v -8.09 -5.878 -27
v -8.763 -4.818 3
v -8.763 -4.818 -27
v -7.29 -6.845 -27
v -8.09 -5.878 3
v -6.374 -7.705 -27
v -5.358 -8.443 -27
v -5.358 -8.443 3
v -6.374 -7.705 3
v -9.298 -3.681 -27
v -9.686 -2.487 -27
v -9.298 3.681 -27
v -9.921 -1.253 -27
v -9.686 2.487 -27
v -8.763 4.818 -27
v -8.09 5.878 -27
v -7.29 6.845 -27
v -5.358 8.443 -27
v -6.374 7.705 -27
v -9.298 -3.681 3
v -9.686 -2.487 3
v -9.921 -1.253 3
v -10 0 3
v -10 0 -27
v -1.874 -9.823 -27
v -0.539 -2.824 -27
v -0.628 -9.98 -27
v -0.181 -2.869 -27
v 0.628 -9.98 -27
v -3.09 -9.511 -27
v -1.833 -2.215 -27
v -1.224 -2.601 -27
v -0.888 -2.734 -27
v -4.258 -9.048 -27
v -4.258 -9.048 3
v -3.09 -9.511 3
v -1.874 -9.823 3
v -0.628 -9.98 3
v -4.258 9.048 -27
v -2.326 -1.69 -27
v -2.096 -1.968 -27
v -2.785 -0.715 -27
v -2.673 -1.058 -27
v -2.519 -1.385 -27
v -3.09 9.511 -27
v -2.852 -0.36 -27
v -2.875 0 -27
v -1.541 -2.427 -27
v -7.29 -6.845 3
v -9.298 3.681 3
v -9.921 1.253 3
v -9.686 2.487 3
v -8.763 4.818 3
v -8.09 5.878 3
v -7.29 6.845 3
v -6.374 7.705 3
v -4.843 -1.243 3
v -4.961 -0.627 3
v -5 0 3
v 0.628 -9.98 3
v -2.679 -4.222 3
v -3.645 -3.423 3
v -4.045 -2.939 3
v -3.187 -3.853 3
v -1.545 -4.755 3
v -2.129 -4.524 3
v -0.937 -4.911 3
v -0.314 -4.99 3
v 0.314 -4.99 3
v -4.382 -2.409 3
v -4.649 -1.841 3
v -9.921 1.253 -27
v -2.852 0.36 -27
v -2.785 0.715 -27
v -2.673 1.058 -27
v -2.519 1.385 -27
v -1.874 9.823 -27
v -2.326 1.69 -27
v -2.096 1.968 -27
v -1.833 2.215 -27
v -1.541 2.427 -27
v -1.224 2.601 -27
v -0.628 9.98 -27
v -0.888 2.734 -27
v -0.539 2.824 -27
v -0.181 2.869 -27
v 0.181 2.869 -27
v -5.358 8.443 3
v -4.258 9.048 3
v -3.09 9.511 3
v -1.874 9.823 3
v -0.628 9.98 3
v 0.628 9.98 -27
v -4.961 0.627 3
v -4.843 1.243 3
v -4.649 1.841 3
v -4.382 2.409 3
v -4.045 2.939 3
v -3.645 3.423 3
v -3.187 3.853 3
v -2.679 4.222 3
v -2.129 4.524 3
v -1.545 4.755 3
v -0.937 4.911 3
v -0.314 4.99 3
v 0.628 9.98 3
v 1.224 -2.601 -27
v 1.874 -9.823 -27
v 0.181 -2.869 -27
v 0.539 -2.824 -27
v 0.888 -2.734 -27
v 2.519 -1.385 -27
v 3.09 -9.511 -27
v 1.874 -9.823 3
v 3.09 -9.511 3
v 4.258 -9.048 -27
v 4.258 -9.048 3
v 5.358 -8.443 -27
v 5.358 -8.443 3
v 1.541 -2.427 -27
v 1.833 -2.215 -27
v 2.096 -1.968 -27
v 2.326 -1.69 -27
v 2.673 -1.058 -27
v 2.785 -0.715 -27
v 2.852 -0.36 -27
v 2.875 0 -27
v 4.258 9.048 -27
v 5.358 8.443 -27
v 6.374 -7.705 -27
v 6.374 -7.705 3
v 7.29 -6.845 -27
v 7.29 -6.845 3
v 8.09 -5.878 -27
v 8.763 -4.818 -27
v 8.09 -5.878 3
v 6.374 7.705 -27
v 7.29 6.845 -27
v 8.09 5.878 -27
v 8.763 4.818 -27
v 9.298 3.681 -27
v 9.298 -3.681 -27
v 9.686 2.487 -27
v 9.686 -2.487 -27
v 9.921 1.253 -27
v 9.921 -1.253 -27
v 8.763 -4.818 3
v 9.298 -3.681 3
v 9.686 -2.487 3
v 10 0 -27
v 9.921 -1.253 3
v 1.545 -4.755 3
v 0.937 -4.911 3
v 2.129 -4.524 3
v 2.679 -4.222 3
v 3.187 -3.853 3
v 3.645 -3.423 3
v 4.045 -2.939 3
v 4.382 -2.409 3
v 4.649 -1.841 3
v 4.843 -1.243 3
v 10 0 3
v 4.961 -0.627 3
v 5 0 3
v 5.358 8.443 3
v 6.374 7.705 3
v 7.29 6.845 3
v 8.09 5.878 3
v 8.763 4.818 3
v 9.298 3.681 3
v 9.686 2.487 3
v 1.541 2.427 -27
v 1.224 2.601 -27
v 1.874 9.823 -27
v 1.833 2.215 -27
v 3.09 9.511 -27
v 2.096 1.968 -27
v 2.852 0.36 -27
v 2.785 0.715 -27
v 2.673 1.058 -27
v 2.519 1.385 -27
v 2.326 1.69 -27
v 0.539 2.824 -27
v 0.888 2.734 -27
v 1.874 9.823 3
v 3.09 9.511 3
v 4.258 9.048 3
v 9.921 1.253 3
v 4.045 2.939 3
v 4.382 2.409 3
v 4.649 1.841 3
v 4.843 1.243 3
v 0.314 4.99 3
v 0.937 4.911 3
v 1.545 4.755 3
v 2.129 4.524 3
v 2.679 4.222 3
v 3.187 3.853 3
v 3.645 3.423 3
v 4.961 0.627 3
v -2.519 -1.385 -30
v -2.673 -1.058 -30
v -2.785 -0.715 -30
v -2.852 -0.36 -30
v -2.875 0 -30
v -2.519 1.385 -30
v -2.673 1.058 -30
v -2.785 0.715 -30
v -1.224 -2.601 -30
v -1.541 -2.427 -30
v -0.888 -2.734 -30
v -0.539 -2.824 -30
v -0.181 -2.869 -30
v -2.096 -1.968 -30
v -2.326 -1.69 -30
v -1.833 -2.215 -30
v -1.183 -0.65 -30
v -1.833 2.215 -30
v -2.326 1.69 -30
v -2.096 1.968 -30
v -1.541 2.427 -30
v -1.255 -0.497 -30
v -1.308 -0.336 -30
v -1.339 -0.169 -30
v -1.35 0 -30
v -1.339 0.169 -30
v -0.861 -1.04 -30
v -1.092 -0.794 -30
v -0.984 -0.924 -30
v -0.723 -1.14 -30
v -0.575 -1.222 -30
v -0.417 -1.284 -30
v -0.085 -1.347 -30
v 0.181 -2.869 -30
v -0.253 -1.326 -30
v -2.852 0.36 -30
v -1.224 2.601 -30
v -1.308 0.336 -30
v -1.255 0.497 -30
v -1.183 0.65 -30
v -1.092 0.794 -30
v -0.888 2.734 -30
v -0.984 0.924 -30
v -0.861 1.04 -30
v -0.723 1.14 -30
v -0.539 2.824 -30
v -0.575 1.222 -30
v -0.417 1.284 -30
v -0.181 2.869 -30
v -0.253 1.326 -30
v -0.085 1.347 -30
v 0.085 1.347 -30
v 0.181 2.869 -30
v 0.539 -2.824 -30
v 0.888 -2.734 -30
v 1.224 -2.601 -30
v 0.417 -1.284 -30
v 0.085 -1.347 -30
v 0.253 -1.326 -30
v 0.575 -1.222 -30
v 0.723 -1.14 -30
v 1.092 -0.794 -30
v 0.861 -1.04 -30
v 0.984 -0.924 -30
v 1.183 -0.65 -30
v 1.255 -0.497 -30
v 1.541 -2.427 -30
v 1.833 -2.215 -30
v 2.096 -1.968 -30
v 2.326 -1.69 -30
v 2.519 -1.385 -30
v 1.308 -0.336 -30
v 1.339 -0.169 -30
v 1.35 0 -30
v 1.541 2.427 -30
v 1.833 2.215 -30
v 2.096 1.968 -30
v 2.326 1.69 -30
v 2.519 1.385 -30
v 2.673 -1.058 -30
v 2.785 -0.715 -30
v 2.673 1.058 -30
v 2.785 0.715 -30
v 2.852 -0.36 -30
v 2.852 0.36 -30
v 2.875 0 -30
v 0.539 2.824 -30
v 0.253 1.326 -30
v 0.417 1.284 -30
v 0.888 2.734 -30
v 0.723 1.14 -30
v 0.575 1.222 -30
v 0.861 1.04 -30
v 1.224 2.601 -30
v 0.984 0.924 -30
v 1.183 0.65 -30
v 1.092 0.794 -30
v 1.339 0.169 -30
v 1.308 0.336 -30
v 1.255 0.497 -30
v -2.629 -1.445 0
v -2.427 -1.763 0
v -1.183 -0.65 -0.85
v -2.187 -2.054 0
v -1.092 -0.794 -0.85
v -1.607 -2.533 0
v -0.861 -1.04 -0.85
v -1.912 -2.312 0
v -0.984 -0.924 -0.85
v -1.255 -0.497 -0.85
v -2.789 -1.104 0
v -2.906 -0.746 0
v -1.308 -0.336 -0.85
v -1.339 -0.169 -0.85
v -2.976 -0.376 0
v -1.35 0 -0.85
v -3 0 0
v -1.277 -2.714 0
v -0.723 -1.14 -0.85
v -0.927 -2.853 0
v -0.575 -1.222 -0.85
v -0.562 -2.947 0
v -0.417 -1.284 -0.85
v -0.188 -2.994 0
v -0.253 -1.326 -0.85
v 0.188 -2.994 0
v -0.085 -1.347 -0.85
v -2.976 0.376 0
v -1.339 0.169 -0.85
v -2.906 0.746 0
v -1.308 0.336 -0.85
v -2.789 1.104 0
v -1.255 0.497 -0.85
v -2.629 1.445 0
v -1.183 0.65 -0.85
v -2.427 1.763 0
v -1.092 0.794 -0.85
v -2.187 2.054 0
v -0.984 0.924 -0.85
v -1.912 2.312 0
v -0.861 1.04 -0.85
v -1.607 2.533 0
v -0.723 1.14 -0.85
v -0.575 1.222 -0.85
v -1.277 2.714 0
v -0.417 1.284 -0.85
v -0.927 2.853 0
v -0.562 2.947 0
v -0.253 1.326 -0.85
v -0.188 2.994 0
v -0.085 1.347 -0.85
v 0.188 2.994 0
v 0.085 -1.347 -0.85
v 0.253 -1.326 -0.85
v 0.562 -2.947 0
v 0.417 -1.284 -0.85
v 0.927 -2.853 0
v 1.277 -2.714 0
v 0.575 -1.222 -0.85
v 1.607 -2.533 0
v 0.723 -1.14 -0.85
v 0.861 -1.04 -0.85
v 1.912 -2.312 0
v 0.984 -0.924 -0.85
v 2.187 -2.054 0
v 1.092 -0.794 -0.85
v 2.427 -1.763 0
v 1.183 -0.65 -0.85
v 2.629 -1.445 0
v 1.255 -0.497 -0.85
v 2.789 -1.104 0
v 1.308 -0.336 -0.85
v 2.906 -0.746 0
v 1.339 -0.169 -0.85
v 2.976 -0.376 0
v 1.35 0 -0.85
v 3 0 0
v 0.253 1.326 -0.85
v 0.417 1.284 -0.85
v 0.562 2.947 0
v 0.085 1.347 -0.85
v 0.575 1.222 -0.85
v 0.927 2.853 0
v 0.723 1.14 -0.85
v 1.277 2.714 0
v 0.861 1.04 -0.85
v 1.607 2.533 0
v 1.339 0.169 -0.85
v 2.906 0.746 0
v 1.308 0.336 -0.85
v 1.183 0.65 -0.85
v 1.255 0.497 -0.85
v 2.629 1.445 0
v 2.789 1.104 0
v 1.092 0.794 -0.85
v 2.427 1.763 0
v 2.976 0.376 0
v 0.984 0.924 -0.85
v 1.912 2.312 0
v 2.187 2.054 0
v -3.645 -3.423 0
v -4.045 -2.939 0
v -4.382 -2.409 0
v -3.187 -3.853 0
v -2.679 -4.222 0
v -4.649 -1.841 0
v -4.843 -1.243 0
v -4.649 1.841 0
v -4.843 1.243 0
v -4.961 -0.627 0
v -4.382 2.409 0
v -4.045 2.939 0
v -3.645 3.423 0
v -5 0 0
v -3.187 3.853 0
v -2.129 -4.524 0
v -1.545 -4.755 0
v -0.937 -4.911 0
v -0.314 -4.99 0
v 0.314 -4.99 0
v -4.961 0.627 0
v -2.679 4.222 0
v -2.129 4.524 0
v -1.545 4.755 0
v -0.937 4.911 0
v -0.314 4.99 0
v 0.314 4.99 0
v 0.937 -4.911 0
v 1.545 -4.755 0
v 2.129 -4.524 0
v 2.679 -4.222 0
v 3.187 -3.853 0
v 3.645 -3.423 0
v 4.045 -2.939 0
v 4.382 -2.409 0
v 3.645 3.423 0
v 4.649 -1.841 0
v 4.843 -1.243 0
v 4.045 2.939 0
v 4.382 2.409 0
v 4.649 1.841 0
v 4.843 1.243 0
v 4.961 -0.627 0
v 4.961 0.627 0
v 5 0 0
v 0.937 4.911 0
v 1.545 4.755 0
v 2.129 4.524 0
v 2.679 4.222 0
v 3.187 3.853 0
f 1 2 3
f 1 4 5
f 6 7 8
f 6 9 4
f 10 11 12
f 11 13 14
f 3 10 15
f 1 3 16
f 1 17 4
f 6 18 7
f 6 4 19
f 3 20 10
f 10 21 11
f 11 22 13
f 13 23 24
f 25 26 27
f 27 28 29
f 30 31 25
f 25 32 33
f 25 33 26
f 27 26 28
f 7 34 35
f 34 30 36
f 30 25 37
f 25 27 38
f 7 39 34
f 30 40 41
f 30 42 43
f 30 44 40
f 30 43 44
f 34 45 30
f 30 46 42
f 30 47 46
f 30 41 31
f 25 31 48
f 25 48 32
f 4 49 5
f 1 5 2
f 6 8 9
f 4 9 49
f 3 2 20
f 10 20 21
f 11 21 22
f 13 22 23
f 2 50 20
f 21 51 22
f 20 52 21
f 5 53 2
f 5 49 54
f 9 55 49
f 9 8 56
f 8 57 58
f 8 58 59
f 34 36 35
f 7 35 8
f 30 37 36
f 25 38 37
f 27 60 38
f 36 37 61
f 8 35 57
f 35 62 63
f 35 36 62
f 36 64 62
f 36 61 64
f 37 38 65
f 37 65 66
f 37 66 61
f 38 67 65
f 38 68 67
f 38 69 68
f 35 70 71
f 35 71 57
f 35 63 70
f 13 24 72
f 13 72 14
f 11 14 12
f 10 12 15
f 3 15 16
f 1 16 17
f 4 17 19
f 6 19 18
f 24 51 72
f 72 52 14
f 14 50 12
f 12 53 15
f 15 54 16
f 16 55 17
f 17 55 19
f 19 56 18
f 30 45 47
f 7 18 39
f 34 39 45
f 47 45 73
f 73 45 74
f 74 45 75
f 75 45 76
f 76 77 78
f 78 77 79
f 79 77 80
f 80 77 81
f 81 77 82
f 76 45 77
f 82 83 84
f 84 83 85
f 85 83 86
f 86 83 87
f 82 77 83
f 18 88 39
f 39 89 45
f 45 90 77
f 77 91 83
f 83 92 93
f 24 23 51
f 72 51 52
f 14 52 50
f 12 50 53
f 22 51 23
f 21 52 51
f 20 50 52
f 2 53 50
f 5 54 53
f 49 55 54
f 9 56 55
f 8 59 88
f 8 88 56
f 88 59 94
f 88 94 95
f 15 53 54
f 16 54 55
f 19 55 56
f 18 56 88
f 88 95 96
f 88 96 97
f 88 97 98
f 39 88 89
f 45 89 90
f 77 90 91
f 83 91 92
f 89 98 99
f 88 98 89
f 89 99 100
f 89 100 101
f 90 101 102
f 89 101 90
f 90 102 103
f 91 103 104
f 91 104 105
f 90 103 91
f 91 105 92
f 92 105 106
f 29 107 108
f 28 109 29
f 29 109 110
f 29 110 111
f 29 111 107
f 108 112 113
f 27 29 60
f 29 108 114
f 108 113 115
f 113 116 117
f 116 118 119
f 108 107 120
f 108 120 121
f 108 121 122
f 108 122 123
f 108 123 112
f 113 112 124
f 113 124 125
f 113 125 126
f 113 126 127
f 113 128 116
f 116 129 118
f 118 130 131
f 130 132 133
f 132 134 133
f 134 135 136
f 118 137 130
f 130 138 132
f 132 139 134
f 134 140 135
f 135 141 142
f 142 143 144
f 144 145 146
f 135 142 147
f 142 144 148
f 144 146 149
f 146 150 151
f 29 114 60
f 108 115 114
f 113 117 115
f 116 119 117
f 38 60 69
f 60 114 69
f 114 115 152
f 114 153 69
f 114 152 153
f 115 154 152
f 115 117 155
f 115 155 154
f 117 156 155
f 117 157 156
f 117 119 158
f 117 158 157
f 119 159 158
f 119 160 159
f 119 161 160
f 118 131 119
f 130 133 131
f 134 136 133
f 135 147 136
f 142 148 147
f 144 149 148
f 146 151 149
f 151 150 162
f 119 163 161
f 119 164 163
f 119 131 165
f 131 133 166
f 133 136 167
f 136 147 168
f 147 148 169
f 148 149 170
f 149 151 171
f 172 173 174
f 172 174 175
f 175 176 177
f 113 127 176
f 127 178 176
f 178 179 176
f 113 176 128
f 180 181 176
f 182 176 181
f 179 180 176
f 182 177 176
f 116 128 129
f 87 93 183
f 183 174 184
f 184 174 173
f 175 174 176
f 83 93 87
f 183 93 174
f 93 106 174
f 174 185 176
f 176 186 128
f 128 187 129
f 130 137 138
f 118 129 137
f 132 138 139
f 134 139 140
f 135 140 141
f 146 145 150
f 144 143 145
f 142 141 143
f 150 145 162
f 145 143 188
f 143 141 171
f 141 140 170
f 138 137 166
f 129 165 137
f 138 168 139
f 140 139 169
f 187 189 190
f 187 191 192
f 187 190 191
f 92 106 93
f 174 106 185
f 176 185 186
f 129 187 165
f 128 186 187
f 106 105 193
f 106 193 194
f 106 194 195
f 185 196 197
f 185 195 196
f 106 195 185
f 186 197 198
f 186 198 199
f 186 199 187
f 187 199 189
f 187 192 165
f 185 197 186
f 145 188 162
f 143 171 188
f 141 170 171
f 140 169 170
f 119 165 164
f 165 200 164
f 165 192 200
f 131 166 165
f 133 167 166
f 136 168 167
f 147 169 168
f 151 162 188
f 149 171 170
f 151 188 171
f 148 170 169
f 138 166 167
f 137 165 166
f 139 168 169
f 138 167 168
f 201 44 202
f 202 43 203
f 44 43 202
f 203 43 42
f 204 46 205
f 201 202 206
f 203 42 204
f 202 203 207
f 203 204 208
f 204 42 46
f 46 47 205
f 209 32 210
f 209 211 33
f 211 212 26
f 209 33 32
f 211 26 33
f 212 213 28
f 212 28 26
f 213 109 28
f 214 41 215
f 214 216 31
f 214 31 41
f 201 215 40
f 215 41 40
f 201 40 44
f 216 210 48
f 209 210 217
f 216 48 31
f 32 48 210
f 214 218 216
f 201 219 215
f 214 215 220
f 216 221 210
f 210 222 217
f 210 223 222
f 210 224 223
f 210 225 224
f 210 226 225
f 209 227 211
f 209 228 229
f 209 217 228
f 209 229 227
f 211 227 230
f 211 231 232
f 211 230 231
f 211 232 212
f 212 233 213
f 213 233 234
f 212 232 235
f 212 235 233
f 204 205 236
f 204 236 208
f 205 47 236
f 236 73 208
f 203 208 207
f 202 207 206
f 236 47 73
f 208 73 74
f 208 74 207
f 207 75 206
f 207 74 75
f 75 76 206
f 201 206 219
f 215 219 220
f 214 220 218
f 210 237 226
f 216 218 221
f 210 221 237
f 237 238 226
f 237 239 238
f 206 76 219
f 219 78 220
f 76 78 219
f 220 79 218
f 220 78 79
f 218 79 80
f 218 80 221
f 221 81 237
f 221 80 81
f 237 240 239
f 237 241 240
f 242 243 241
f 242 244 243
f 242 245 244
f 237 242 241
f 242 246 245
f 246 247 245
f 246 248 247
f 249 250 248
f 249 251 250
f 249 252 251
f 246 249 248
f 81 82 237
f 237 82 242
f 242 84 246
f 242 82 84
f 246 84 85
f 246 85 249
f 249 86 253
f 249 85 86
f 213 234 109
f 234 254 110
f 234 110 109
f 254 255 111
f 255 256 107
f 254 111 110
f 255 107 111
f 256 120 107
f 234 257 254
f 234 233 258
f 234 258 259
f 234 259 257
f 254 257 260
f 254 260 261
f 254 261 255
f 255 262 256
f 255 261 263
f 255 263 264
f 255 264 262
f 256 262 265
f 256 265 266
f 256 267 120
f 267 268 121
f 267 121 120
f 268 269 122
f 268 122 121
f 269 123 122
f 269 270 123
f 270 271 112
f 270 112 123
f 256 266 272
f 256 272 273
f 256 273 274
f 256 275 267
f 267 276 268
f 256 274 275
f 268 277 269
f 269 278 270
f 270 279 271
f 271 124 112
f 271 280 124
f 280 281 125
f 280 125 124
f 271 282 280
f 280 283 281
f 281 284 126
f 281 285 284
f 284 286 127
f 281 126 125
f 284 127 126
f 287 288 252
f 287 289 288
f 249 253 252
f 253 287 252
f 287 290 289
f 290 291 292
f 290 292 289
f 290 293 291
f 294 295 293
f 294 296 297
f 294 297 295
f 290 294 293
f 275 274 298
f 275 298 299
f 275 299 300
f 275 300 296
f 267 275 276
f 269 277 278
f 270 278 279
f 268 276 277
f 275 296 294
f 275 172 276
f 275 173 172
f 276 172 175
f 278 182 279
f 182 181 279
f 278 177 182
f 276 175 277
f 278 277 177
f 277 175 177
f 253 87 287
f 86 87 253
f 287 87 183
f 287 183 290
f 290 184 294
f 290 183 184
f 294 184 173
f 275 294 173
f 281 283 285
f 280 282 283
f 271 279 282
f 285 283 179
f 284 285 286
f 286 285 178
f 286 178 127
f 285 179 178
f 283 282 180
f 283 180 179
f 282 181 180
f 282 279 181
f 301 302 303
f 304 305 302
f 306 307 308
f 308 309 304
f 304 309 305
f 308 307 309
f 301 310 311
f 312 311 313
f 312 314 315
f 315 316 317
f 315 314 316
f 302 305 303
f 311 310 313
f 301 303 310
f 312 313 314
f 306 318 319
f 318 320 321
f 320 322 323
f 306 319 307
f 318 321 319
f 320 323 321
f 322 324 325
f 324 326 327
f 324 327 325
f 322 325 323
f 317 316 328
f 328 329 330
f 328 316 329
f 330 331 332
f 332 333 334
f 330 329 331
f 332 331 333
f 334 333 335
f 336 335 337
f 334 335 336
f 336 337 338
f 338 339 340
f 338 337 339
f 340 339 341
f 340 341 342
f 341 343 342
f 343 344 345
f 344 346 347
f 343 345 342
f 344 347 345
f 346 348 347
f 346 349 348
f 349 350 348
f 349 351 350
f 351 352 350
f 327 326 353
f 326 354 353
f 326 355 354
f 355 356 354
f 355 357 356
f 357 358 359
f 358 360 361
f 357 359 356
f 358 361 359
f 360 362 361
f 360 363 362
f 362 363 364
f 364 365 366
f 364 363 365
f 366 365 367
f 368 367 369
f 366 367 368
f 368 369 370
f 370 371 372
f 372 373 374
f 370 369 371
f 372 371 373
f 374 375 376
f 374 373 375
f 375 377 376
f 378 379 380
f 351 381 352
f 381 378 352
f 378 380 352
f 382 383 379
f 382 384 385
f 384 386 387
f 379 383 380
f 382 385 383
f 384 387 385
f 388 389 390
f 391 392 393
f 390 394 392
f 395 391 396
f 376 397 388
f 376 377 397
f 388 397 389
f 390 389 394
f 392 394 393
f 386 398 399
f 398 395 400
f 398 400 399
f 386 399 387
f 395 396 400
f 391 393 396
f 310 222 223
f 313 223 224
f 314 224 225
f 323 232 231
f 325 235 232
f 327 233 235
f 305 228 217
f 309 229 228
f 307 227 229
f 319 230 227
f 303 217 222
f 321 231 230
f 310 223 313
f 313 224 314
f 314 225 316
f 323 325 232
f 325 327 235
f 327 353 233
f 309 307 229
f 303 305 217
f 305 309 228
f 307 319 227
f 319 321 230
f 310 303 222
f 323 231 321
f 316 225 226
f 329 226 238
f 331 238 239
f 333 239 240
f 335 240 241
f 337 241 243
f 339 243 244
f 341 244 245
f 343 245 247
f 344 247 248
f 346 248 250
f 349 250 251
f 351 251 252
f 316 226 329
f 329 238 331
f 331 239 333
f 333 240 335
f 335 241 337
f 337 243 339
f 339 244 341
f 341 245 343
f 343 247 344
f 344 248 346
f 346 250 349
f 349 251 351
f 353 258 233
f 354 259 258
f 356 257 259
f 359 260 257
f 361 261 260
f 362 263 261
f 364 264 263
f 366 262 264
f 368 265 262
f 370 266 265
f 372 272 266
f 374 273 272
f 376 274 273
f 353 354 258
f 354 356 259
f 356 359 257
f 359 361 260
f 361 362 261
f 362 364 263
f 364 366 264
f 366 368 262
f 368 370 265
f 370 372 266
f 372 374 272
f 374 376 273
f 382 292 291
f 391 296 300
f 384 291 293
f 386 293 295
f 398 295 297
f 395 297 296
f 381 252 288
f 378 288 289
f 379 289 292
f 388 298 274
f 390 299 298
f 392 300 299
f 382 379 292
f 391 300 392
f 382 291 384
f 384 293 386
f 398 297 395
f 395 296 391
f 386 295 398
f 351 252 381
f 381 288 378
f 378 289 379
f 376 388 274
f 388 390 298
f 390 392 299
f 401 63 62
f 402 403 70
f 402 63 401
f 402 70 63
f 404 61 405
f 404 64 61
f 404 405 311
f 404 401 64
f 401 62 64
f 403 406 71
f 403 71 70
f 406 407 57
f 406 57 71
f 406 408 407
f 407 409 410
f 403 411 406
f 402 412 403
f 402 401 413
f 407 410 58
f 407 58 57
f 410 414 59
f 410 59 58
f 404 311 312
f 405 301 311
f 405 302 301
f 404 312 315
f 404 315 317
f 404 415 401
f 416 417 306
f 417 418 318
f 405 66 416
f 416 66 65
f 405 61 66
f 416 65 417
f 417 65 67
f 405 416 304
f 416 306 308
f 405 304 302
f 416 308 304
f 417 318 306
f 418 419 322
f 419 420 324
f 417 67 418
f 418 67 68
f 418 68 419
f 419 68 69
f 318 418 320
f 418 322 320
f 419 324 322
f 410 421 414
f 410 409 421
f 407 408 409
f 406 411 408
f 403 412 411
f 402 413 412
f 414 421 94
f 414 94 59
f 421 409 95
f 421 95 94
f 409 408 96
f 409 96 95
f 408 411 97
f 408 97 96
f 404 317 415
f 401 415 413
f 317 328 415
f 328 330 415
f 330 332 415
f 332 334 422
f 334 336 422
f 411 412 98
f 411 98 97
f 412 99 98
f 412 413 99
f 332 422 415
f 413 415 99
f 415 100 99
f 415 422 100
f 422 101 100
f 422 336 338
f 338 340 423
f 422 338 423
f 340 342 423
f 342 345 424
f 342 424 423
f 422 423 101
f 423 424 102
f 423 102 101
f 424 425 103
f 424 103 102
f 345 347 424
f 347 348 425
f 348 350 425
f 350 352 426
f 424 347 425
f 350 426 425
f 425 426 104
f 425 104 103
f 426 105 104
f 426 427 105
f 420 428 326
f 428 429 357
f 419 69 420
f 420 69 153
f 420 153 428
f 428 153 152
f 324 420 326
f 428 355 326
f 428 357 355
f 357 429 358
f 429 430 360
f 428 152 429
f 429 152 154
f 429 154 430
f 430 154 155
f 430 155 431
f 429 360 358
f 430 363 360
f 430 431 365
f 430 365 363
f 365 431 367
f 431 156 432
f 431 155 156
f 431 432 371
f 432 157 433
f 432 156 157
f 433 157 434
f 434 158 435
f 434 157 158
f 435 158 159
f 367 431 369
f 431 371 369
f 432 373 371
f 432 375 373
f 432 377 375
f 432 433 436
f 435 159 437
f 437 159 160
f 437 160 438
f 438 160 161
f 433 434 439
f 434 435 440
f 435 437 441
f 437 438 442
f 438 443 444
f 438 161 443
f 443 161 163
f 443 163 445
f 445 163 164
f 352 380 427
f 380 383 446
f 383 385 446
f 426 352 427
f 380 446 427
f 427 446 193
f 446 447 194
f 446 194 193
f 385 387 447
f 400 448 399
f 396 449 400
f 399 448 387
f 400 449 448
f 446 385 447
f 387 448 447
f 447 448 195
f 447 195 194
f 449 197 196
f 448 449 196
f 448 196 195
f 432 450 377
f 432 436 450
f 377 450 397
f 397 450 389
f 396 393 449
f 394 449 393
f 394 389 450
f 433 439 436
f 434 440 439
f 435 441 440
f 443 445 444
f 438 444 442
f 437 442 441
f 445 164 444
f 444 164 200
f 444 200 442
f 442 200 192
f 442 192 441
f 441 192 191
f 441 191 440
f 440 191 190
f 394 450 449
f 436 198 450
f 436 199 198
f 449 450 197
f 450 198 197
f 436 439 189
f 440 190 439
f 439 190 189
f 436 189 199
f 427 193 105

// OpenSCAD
$fn = 50;


difference() {
	union() {
		translate(v = [0, 0, -27.0000000000]) {
			cylinder(h = 30, r = 10.0000000000);
		}
		#translate(v = [0, 0, -30.0000000000]) {
			cylinder(h = 30, r = 2.8750000000);
		}
	}
	union() {
		translate(v = [0, 0, 0]) {
			rotate(a = [0, 0, 0]) {
				difference() {
					union() {
						translate(v = [0, 0, -30.0000000000]) {
							cylinder(h = 30, r = 1.0000000000);
						}
						translate(v = [0, 0, -0.8500000000]) {
							cylinder(h = 0.8500000000, r1 = 1.3500000000, r2 = 3.0000000000);
						}
						translate(v = [0, 0, -30.0000000000]) {
							cylinder(h = 30, r = 1.3500000000);
						}
						translate(v = [0, 0, -30.0000000000]) {
							cylinder(h = 30, r = 1.0000000000);
						}
					}
					union();
				}
			}
		}
		#cylinder(h = 3, r = 5.0000000000);
	}
}
